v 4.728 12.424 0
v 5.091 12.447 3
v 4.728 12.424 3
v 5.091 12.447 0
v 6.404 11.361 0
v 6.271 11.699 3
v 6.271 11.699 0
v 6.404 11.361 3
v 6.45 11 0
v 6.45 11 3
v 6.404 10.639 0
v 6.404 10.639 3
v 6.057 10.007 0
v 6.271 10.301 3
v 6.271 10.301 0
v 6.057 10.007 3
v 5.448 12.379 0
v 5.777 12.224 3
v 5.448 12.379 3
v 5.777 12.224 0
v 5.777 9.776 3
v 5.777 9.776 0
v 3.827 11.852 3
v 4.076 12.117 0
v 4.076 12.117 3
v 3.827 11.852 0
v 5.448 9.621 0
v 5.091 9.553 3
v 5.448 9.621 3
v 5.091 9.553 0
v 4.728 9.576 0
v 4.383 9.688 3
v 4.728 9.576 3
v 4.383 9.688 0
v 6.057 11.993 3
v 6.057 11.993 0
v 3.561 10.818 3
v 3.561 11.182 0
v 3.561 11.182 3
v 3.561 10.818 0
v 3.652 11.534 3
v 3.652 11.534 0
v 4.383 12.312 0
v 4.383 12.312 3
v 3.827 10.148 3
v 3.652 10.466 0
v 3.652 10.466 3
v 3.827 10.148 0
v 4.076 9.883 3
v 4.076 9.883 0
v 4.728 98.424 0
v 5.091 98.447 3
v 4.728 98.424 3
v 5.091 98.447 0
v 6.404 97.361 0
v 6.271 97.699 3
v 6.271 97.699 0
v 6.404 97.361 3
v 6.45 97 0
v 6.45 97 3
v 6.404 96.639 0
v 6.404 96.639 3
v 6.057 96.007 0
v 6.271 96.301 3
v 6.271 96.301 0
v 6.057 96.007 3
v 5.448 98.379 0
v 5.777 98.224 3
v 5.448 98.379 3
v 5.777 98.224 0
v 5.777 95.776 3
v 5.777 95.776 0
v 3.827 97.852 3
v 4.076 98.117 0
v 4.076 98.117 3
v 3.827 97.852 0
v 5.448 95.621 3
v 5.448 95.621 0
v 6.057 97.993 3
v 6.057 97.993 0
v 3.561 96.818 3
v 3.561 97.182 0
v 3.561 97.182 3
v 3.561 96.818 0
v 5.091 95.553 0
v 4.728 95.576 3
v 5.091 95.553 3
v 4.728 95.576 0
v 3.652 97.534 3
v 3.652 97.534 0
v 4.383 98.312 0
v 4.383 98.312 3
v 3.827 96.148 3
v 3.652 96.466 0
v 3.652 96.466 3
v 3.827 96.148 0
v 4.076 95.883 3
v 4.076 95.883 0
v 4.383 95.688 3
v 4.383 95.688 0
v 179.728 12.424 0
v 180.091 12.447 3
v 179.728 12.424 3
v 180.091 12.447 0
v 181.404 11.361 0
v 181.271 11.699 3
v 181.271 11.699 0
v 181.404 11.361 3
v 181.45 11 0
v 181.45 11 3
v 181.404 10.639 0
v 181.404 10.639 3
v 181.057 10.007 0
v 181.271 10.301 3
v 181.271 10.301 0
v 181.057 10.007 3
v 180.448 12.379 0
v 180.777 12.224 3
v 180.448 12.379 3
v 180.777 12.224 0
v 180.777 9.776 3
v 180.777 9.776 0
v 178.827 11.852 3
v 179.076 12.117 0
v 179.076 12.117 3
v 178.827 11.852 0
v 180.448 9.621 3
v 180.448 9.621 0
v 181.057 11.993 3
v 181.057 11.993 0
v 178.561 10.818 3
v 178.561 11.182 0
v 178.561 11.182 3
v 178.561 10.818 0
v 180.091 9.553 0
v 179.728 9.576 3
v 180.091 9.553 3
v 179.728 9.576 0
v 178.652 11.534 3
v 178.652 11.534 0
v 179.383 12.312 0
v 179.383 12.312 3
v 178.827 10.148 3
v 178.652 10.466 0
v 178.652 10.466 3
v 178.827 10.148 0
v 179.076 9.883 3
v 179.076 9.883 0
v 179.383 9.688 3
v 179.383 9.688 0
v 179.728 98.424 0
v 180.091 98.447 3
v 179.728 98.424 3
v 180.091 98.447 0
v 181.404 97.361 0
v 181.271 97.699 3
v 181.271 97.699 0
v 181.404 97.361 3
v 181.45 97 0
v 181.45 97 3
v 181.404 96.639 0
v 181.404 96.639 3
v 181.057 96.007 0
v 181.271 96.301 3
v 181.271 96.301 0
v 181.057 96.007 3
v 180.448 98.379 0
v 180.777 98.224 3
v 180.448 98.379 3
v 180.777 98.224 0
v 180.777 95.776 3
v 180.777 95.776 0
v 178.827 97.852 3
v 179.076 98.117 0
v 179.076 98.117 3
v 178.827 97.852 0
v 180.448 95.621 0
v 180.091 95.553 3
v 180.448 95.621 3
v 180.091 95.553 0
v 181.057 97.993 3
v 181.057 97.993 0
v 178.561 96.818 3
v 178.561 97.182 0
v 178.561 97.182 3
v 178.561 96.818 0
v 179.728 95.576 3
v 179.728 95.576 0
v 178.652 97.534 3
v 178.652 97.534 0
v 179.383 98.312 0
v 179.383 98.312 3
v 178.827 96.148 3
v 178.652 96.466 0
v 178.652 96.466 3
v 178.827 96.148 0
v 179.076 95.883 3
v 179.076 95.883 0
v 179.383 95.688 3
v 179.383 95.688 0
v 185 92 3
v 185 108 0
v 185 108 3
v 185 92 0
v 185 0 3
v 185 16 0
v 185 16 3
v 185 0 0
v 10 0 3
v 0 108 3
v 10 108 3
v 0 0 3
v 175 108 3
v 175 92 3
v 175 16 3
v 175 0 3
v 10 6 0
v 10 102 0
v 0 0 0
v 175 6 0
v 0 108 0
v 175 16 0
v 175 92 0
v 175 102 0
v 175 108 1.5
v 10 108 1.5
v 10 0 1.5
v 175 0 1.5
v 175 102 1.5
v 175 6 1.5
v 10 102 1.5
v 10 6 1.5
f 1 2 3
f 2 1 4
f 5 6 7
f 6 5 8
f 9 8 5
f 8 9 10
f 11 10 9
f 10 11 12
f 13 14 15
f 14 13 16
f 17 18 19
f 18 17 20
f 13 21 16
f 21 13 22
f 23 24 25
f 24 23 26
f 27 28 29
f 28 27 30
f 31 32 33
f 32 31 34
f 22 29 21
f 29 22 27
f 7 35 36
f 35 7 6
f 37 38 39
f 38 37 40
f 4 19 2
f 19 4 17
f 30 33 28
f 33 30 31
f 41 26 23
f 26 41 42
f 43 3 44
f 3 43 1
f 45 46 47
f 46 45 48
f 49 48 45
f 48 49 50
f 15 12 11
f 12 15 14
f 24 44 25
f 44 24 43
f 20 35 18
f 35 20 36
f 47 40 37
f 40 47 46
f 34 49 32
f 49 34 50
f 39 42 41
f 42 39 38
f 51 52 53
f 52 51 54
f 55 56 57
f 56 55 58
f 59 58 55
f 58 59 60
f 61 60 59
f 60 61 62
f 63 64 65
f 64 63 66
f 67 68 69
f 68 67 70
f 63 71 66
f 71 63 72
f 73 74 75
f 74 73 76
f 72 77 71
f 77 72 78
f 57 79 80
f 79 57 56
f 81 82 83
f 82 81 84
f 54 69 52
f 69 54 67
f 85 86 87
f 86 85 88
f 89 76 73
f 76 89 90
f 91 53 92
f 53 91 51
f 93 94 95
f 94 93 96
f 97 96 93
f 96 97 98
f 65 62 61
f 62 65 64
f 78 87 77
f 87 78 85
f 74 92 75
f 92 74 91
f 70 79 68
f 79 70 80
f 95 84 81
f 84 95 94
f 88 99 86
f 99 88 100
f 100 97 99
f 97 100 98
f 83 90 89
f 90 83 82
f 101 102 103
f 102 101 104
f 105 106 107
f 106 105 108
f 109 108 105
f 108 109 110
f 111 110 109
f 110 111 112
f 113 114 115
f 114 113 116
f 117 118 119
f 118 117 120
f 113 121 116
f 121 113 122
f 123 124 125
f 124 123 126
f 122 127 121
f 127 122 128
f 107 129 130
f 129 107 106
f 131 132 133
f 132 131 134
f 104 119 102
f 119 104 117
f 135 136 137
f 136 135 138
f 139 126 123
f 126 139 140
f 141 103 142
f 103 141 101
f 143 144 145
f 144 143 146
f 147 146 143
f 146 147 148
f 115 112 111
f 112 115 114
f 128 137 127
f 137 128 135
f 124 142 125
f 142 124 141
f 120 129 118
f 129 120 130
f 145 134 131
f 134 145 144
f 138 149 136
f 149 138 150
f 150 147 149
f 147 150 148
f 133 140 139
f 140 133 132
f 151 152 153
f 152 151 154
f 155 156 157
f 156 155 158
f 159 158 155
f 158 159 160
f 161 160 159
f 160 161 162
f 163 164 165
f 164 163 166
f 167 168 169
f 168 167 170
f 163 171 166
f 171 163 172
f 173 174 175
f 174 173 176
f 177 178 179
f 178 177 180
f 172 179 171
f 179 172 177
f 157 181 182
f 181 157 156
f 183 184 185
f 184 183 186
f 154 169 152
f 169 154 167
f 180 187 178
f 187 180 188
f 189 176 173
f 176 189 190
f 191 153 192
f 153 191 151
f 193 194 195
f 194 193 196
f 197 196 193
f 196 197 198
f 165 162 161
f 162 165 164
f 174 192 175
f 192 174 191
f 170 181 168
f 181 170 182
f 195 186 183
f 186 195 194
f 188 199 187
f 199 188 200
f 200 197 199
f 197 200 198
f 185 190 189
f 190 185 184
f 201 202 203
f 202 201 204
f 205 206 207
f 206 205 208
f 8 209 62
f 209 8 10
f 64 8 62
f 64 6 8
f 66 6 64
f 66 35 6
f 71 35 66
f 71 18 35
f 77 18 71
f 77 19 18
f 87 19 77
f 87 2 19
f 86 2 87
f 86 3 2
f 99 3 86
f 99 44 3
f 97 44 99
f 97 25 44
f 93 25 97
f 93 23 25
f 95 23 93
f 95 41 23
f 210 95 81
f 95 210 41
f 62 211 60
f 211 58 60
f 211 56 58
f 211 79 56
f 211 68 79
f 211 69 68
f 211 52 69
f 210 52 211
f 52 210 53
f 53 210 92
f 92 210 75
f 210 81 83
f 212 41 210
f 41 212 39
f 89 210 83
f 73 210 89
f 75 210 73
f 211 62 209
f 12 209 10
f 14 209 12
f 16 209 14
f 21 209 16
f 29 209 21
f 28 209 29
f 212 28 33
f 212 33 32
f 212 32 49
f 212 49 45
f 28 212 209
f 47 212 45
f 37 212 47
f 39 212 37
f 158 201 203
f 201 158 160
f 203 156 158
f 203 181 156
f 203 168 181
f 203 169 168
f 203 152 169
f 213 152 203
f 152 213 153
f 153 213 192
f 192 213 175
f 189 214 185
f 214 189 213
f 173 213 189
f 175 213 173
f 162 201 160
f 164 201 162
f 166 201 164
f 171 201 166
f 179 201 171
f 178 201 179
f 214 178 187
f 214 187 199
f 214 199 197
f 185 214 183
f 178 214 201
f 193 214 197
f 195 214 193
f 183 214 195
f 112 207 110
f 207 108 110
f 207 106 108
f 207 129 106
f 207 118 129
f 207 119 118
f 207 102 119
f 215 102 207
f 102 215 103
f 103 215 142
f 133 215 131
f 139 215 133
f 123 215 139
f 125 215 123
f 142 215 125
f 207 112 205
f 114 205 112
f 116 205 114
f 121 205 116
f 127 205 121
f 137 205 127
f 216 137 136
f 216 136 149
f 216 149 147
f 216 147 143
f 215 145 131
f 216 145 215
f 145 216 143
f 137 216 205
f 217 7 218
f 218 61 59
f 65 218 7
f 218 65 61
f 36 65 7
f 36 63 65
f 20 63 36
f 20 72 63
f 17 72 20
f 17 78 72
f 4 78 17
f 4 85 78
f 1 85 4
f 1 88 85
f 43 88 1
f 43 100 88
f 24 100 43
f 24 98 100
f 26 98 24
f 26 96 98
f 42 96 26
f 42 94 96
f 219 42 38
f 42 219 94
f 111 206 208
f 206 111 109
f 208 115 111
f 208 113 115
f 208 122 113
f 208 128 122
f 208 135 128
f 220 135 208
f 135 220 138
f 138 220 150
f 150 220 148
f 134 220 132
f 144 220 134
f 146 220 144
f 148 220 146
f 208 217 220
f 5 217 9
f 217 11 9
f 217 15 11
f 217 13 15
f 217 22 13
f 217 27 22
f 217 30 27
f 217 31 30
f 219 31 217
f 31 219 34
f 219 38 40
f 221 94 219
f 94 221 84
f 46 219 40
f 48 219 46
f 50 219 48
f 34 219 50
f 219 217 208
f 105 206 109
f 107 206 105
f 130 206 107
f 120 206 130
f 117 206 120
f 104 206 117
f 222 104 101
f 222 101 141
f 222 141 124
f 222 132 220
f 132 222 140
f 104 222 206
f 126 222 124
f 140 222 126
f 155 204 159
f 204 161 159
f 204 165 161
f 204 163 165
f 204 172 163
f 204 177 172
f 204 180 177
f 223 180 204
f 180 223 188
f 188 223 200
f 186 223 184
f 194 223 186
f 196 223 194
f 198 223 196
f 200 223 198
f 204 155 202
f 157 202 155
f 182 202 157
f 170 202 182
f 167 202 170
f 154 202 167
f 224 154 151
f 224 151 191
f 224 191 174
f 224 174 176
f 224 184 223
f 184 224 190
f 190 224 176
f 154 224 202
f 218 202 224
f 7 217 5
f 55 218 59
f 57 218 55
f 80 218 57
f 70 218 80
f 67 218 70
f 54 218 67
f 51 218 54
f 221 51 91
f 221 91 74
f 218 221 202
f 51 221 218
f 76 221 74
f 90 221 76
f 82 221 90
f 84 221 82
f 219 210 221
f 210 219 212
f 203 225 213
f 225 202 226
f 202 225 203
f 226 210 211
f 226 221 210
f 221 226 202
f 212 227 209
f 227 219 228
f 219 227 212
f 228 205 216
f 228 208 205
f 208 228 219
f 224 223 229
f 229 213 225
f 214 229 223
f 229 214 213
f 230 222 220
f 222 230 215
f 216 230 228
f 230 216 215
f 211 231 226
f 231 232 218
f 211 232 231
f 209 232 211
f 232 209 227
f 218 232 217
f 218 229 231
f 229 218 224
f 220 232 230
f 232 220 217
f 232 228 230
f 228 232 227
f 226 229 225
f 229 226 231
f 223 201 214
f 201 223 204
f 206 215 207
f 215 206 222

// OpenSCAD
display_x = 165;
display_y = 100 - 4;
display_z = 3;

border_x = 10;
border_y = 6;

case_x = display_x + 2 * border_x;
case_y = display_y + 2 * border_y;

difference() {
    cube([display_x + 2 * border_x, display_y + 2 * border_y, display_z]);
    // display cutout
    translate([border_x, border_y, -0.1])
        cube([display_x, display_y, display_z + 4.2]);

    // display clamp screw holes
    for (x = [-5, display_x + 5], y = [5, display_y - 5]) {
        color("red")
        translate([x + border_x, y + border_y, -0.1])
            cylinder(10, d=2.9, $fn=25);
    }

    // top/down cutout
    translate([border_x, -0.1, display_z - 1.5])
        cube([display_x, case_y + 0.2, display_z + 4.2]);

    // cable cutout
    translate([3 * border_x, border_y + 10, -0.1])
        cube([display_x, display_y - 20, display_z + 4.2]);
}
